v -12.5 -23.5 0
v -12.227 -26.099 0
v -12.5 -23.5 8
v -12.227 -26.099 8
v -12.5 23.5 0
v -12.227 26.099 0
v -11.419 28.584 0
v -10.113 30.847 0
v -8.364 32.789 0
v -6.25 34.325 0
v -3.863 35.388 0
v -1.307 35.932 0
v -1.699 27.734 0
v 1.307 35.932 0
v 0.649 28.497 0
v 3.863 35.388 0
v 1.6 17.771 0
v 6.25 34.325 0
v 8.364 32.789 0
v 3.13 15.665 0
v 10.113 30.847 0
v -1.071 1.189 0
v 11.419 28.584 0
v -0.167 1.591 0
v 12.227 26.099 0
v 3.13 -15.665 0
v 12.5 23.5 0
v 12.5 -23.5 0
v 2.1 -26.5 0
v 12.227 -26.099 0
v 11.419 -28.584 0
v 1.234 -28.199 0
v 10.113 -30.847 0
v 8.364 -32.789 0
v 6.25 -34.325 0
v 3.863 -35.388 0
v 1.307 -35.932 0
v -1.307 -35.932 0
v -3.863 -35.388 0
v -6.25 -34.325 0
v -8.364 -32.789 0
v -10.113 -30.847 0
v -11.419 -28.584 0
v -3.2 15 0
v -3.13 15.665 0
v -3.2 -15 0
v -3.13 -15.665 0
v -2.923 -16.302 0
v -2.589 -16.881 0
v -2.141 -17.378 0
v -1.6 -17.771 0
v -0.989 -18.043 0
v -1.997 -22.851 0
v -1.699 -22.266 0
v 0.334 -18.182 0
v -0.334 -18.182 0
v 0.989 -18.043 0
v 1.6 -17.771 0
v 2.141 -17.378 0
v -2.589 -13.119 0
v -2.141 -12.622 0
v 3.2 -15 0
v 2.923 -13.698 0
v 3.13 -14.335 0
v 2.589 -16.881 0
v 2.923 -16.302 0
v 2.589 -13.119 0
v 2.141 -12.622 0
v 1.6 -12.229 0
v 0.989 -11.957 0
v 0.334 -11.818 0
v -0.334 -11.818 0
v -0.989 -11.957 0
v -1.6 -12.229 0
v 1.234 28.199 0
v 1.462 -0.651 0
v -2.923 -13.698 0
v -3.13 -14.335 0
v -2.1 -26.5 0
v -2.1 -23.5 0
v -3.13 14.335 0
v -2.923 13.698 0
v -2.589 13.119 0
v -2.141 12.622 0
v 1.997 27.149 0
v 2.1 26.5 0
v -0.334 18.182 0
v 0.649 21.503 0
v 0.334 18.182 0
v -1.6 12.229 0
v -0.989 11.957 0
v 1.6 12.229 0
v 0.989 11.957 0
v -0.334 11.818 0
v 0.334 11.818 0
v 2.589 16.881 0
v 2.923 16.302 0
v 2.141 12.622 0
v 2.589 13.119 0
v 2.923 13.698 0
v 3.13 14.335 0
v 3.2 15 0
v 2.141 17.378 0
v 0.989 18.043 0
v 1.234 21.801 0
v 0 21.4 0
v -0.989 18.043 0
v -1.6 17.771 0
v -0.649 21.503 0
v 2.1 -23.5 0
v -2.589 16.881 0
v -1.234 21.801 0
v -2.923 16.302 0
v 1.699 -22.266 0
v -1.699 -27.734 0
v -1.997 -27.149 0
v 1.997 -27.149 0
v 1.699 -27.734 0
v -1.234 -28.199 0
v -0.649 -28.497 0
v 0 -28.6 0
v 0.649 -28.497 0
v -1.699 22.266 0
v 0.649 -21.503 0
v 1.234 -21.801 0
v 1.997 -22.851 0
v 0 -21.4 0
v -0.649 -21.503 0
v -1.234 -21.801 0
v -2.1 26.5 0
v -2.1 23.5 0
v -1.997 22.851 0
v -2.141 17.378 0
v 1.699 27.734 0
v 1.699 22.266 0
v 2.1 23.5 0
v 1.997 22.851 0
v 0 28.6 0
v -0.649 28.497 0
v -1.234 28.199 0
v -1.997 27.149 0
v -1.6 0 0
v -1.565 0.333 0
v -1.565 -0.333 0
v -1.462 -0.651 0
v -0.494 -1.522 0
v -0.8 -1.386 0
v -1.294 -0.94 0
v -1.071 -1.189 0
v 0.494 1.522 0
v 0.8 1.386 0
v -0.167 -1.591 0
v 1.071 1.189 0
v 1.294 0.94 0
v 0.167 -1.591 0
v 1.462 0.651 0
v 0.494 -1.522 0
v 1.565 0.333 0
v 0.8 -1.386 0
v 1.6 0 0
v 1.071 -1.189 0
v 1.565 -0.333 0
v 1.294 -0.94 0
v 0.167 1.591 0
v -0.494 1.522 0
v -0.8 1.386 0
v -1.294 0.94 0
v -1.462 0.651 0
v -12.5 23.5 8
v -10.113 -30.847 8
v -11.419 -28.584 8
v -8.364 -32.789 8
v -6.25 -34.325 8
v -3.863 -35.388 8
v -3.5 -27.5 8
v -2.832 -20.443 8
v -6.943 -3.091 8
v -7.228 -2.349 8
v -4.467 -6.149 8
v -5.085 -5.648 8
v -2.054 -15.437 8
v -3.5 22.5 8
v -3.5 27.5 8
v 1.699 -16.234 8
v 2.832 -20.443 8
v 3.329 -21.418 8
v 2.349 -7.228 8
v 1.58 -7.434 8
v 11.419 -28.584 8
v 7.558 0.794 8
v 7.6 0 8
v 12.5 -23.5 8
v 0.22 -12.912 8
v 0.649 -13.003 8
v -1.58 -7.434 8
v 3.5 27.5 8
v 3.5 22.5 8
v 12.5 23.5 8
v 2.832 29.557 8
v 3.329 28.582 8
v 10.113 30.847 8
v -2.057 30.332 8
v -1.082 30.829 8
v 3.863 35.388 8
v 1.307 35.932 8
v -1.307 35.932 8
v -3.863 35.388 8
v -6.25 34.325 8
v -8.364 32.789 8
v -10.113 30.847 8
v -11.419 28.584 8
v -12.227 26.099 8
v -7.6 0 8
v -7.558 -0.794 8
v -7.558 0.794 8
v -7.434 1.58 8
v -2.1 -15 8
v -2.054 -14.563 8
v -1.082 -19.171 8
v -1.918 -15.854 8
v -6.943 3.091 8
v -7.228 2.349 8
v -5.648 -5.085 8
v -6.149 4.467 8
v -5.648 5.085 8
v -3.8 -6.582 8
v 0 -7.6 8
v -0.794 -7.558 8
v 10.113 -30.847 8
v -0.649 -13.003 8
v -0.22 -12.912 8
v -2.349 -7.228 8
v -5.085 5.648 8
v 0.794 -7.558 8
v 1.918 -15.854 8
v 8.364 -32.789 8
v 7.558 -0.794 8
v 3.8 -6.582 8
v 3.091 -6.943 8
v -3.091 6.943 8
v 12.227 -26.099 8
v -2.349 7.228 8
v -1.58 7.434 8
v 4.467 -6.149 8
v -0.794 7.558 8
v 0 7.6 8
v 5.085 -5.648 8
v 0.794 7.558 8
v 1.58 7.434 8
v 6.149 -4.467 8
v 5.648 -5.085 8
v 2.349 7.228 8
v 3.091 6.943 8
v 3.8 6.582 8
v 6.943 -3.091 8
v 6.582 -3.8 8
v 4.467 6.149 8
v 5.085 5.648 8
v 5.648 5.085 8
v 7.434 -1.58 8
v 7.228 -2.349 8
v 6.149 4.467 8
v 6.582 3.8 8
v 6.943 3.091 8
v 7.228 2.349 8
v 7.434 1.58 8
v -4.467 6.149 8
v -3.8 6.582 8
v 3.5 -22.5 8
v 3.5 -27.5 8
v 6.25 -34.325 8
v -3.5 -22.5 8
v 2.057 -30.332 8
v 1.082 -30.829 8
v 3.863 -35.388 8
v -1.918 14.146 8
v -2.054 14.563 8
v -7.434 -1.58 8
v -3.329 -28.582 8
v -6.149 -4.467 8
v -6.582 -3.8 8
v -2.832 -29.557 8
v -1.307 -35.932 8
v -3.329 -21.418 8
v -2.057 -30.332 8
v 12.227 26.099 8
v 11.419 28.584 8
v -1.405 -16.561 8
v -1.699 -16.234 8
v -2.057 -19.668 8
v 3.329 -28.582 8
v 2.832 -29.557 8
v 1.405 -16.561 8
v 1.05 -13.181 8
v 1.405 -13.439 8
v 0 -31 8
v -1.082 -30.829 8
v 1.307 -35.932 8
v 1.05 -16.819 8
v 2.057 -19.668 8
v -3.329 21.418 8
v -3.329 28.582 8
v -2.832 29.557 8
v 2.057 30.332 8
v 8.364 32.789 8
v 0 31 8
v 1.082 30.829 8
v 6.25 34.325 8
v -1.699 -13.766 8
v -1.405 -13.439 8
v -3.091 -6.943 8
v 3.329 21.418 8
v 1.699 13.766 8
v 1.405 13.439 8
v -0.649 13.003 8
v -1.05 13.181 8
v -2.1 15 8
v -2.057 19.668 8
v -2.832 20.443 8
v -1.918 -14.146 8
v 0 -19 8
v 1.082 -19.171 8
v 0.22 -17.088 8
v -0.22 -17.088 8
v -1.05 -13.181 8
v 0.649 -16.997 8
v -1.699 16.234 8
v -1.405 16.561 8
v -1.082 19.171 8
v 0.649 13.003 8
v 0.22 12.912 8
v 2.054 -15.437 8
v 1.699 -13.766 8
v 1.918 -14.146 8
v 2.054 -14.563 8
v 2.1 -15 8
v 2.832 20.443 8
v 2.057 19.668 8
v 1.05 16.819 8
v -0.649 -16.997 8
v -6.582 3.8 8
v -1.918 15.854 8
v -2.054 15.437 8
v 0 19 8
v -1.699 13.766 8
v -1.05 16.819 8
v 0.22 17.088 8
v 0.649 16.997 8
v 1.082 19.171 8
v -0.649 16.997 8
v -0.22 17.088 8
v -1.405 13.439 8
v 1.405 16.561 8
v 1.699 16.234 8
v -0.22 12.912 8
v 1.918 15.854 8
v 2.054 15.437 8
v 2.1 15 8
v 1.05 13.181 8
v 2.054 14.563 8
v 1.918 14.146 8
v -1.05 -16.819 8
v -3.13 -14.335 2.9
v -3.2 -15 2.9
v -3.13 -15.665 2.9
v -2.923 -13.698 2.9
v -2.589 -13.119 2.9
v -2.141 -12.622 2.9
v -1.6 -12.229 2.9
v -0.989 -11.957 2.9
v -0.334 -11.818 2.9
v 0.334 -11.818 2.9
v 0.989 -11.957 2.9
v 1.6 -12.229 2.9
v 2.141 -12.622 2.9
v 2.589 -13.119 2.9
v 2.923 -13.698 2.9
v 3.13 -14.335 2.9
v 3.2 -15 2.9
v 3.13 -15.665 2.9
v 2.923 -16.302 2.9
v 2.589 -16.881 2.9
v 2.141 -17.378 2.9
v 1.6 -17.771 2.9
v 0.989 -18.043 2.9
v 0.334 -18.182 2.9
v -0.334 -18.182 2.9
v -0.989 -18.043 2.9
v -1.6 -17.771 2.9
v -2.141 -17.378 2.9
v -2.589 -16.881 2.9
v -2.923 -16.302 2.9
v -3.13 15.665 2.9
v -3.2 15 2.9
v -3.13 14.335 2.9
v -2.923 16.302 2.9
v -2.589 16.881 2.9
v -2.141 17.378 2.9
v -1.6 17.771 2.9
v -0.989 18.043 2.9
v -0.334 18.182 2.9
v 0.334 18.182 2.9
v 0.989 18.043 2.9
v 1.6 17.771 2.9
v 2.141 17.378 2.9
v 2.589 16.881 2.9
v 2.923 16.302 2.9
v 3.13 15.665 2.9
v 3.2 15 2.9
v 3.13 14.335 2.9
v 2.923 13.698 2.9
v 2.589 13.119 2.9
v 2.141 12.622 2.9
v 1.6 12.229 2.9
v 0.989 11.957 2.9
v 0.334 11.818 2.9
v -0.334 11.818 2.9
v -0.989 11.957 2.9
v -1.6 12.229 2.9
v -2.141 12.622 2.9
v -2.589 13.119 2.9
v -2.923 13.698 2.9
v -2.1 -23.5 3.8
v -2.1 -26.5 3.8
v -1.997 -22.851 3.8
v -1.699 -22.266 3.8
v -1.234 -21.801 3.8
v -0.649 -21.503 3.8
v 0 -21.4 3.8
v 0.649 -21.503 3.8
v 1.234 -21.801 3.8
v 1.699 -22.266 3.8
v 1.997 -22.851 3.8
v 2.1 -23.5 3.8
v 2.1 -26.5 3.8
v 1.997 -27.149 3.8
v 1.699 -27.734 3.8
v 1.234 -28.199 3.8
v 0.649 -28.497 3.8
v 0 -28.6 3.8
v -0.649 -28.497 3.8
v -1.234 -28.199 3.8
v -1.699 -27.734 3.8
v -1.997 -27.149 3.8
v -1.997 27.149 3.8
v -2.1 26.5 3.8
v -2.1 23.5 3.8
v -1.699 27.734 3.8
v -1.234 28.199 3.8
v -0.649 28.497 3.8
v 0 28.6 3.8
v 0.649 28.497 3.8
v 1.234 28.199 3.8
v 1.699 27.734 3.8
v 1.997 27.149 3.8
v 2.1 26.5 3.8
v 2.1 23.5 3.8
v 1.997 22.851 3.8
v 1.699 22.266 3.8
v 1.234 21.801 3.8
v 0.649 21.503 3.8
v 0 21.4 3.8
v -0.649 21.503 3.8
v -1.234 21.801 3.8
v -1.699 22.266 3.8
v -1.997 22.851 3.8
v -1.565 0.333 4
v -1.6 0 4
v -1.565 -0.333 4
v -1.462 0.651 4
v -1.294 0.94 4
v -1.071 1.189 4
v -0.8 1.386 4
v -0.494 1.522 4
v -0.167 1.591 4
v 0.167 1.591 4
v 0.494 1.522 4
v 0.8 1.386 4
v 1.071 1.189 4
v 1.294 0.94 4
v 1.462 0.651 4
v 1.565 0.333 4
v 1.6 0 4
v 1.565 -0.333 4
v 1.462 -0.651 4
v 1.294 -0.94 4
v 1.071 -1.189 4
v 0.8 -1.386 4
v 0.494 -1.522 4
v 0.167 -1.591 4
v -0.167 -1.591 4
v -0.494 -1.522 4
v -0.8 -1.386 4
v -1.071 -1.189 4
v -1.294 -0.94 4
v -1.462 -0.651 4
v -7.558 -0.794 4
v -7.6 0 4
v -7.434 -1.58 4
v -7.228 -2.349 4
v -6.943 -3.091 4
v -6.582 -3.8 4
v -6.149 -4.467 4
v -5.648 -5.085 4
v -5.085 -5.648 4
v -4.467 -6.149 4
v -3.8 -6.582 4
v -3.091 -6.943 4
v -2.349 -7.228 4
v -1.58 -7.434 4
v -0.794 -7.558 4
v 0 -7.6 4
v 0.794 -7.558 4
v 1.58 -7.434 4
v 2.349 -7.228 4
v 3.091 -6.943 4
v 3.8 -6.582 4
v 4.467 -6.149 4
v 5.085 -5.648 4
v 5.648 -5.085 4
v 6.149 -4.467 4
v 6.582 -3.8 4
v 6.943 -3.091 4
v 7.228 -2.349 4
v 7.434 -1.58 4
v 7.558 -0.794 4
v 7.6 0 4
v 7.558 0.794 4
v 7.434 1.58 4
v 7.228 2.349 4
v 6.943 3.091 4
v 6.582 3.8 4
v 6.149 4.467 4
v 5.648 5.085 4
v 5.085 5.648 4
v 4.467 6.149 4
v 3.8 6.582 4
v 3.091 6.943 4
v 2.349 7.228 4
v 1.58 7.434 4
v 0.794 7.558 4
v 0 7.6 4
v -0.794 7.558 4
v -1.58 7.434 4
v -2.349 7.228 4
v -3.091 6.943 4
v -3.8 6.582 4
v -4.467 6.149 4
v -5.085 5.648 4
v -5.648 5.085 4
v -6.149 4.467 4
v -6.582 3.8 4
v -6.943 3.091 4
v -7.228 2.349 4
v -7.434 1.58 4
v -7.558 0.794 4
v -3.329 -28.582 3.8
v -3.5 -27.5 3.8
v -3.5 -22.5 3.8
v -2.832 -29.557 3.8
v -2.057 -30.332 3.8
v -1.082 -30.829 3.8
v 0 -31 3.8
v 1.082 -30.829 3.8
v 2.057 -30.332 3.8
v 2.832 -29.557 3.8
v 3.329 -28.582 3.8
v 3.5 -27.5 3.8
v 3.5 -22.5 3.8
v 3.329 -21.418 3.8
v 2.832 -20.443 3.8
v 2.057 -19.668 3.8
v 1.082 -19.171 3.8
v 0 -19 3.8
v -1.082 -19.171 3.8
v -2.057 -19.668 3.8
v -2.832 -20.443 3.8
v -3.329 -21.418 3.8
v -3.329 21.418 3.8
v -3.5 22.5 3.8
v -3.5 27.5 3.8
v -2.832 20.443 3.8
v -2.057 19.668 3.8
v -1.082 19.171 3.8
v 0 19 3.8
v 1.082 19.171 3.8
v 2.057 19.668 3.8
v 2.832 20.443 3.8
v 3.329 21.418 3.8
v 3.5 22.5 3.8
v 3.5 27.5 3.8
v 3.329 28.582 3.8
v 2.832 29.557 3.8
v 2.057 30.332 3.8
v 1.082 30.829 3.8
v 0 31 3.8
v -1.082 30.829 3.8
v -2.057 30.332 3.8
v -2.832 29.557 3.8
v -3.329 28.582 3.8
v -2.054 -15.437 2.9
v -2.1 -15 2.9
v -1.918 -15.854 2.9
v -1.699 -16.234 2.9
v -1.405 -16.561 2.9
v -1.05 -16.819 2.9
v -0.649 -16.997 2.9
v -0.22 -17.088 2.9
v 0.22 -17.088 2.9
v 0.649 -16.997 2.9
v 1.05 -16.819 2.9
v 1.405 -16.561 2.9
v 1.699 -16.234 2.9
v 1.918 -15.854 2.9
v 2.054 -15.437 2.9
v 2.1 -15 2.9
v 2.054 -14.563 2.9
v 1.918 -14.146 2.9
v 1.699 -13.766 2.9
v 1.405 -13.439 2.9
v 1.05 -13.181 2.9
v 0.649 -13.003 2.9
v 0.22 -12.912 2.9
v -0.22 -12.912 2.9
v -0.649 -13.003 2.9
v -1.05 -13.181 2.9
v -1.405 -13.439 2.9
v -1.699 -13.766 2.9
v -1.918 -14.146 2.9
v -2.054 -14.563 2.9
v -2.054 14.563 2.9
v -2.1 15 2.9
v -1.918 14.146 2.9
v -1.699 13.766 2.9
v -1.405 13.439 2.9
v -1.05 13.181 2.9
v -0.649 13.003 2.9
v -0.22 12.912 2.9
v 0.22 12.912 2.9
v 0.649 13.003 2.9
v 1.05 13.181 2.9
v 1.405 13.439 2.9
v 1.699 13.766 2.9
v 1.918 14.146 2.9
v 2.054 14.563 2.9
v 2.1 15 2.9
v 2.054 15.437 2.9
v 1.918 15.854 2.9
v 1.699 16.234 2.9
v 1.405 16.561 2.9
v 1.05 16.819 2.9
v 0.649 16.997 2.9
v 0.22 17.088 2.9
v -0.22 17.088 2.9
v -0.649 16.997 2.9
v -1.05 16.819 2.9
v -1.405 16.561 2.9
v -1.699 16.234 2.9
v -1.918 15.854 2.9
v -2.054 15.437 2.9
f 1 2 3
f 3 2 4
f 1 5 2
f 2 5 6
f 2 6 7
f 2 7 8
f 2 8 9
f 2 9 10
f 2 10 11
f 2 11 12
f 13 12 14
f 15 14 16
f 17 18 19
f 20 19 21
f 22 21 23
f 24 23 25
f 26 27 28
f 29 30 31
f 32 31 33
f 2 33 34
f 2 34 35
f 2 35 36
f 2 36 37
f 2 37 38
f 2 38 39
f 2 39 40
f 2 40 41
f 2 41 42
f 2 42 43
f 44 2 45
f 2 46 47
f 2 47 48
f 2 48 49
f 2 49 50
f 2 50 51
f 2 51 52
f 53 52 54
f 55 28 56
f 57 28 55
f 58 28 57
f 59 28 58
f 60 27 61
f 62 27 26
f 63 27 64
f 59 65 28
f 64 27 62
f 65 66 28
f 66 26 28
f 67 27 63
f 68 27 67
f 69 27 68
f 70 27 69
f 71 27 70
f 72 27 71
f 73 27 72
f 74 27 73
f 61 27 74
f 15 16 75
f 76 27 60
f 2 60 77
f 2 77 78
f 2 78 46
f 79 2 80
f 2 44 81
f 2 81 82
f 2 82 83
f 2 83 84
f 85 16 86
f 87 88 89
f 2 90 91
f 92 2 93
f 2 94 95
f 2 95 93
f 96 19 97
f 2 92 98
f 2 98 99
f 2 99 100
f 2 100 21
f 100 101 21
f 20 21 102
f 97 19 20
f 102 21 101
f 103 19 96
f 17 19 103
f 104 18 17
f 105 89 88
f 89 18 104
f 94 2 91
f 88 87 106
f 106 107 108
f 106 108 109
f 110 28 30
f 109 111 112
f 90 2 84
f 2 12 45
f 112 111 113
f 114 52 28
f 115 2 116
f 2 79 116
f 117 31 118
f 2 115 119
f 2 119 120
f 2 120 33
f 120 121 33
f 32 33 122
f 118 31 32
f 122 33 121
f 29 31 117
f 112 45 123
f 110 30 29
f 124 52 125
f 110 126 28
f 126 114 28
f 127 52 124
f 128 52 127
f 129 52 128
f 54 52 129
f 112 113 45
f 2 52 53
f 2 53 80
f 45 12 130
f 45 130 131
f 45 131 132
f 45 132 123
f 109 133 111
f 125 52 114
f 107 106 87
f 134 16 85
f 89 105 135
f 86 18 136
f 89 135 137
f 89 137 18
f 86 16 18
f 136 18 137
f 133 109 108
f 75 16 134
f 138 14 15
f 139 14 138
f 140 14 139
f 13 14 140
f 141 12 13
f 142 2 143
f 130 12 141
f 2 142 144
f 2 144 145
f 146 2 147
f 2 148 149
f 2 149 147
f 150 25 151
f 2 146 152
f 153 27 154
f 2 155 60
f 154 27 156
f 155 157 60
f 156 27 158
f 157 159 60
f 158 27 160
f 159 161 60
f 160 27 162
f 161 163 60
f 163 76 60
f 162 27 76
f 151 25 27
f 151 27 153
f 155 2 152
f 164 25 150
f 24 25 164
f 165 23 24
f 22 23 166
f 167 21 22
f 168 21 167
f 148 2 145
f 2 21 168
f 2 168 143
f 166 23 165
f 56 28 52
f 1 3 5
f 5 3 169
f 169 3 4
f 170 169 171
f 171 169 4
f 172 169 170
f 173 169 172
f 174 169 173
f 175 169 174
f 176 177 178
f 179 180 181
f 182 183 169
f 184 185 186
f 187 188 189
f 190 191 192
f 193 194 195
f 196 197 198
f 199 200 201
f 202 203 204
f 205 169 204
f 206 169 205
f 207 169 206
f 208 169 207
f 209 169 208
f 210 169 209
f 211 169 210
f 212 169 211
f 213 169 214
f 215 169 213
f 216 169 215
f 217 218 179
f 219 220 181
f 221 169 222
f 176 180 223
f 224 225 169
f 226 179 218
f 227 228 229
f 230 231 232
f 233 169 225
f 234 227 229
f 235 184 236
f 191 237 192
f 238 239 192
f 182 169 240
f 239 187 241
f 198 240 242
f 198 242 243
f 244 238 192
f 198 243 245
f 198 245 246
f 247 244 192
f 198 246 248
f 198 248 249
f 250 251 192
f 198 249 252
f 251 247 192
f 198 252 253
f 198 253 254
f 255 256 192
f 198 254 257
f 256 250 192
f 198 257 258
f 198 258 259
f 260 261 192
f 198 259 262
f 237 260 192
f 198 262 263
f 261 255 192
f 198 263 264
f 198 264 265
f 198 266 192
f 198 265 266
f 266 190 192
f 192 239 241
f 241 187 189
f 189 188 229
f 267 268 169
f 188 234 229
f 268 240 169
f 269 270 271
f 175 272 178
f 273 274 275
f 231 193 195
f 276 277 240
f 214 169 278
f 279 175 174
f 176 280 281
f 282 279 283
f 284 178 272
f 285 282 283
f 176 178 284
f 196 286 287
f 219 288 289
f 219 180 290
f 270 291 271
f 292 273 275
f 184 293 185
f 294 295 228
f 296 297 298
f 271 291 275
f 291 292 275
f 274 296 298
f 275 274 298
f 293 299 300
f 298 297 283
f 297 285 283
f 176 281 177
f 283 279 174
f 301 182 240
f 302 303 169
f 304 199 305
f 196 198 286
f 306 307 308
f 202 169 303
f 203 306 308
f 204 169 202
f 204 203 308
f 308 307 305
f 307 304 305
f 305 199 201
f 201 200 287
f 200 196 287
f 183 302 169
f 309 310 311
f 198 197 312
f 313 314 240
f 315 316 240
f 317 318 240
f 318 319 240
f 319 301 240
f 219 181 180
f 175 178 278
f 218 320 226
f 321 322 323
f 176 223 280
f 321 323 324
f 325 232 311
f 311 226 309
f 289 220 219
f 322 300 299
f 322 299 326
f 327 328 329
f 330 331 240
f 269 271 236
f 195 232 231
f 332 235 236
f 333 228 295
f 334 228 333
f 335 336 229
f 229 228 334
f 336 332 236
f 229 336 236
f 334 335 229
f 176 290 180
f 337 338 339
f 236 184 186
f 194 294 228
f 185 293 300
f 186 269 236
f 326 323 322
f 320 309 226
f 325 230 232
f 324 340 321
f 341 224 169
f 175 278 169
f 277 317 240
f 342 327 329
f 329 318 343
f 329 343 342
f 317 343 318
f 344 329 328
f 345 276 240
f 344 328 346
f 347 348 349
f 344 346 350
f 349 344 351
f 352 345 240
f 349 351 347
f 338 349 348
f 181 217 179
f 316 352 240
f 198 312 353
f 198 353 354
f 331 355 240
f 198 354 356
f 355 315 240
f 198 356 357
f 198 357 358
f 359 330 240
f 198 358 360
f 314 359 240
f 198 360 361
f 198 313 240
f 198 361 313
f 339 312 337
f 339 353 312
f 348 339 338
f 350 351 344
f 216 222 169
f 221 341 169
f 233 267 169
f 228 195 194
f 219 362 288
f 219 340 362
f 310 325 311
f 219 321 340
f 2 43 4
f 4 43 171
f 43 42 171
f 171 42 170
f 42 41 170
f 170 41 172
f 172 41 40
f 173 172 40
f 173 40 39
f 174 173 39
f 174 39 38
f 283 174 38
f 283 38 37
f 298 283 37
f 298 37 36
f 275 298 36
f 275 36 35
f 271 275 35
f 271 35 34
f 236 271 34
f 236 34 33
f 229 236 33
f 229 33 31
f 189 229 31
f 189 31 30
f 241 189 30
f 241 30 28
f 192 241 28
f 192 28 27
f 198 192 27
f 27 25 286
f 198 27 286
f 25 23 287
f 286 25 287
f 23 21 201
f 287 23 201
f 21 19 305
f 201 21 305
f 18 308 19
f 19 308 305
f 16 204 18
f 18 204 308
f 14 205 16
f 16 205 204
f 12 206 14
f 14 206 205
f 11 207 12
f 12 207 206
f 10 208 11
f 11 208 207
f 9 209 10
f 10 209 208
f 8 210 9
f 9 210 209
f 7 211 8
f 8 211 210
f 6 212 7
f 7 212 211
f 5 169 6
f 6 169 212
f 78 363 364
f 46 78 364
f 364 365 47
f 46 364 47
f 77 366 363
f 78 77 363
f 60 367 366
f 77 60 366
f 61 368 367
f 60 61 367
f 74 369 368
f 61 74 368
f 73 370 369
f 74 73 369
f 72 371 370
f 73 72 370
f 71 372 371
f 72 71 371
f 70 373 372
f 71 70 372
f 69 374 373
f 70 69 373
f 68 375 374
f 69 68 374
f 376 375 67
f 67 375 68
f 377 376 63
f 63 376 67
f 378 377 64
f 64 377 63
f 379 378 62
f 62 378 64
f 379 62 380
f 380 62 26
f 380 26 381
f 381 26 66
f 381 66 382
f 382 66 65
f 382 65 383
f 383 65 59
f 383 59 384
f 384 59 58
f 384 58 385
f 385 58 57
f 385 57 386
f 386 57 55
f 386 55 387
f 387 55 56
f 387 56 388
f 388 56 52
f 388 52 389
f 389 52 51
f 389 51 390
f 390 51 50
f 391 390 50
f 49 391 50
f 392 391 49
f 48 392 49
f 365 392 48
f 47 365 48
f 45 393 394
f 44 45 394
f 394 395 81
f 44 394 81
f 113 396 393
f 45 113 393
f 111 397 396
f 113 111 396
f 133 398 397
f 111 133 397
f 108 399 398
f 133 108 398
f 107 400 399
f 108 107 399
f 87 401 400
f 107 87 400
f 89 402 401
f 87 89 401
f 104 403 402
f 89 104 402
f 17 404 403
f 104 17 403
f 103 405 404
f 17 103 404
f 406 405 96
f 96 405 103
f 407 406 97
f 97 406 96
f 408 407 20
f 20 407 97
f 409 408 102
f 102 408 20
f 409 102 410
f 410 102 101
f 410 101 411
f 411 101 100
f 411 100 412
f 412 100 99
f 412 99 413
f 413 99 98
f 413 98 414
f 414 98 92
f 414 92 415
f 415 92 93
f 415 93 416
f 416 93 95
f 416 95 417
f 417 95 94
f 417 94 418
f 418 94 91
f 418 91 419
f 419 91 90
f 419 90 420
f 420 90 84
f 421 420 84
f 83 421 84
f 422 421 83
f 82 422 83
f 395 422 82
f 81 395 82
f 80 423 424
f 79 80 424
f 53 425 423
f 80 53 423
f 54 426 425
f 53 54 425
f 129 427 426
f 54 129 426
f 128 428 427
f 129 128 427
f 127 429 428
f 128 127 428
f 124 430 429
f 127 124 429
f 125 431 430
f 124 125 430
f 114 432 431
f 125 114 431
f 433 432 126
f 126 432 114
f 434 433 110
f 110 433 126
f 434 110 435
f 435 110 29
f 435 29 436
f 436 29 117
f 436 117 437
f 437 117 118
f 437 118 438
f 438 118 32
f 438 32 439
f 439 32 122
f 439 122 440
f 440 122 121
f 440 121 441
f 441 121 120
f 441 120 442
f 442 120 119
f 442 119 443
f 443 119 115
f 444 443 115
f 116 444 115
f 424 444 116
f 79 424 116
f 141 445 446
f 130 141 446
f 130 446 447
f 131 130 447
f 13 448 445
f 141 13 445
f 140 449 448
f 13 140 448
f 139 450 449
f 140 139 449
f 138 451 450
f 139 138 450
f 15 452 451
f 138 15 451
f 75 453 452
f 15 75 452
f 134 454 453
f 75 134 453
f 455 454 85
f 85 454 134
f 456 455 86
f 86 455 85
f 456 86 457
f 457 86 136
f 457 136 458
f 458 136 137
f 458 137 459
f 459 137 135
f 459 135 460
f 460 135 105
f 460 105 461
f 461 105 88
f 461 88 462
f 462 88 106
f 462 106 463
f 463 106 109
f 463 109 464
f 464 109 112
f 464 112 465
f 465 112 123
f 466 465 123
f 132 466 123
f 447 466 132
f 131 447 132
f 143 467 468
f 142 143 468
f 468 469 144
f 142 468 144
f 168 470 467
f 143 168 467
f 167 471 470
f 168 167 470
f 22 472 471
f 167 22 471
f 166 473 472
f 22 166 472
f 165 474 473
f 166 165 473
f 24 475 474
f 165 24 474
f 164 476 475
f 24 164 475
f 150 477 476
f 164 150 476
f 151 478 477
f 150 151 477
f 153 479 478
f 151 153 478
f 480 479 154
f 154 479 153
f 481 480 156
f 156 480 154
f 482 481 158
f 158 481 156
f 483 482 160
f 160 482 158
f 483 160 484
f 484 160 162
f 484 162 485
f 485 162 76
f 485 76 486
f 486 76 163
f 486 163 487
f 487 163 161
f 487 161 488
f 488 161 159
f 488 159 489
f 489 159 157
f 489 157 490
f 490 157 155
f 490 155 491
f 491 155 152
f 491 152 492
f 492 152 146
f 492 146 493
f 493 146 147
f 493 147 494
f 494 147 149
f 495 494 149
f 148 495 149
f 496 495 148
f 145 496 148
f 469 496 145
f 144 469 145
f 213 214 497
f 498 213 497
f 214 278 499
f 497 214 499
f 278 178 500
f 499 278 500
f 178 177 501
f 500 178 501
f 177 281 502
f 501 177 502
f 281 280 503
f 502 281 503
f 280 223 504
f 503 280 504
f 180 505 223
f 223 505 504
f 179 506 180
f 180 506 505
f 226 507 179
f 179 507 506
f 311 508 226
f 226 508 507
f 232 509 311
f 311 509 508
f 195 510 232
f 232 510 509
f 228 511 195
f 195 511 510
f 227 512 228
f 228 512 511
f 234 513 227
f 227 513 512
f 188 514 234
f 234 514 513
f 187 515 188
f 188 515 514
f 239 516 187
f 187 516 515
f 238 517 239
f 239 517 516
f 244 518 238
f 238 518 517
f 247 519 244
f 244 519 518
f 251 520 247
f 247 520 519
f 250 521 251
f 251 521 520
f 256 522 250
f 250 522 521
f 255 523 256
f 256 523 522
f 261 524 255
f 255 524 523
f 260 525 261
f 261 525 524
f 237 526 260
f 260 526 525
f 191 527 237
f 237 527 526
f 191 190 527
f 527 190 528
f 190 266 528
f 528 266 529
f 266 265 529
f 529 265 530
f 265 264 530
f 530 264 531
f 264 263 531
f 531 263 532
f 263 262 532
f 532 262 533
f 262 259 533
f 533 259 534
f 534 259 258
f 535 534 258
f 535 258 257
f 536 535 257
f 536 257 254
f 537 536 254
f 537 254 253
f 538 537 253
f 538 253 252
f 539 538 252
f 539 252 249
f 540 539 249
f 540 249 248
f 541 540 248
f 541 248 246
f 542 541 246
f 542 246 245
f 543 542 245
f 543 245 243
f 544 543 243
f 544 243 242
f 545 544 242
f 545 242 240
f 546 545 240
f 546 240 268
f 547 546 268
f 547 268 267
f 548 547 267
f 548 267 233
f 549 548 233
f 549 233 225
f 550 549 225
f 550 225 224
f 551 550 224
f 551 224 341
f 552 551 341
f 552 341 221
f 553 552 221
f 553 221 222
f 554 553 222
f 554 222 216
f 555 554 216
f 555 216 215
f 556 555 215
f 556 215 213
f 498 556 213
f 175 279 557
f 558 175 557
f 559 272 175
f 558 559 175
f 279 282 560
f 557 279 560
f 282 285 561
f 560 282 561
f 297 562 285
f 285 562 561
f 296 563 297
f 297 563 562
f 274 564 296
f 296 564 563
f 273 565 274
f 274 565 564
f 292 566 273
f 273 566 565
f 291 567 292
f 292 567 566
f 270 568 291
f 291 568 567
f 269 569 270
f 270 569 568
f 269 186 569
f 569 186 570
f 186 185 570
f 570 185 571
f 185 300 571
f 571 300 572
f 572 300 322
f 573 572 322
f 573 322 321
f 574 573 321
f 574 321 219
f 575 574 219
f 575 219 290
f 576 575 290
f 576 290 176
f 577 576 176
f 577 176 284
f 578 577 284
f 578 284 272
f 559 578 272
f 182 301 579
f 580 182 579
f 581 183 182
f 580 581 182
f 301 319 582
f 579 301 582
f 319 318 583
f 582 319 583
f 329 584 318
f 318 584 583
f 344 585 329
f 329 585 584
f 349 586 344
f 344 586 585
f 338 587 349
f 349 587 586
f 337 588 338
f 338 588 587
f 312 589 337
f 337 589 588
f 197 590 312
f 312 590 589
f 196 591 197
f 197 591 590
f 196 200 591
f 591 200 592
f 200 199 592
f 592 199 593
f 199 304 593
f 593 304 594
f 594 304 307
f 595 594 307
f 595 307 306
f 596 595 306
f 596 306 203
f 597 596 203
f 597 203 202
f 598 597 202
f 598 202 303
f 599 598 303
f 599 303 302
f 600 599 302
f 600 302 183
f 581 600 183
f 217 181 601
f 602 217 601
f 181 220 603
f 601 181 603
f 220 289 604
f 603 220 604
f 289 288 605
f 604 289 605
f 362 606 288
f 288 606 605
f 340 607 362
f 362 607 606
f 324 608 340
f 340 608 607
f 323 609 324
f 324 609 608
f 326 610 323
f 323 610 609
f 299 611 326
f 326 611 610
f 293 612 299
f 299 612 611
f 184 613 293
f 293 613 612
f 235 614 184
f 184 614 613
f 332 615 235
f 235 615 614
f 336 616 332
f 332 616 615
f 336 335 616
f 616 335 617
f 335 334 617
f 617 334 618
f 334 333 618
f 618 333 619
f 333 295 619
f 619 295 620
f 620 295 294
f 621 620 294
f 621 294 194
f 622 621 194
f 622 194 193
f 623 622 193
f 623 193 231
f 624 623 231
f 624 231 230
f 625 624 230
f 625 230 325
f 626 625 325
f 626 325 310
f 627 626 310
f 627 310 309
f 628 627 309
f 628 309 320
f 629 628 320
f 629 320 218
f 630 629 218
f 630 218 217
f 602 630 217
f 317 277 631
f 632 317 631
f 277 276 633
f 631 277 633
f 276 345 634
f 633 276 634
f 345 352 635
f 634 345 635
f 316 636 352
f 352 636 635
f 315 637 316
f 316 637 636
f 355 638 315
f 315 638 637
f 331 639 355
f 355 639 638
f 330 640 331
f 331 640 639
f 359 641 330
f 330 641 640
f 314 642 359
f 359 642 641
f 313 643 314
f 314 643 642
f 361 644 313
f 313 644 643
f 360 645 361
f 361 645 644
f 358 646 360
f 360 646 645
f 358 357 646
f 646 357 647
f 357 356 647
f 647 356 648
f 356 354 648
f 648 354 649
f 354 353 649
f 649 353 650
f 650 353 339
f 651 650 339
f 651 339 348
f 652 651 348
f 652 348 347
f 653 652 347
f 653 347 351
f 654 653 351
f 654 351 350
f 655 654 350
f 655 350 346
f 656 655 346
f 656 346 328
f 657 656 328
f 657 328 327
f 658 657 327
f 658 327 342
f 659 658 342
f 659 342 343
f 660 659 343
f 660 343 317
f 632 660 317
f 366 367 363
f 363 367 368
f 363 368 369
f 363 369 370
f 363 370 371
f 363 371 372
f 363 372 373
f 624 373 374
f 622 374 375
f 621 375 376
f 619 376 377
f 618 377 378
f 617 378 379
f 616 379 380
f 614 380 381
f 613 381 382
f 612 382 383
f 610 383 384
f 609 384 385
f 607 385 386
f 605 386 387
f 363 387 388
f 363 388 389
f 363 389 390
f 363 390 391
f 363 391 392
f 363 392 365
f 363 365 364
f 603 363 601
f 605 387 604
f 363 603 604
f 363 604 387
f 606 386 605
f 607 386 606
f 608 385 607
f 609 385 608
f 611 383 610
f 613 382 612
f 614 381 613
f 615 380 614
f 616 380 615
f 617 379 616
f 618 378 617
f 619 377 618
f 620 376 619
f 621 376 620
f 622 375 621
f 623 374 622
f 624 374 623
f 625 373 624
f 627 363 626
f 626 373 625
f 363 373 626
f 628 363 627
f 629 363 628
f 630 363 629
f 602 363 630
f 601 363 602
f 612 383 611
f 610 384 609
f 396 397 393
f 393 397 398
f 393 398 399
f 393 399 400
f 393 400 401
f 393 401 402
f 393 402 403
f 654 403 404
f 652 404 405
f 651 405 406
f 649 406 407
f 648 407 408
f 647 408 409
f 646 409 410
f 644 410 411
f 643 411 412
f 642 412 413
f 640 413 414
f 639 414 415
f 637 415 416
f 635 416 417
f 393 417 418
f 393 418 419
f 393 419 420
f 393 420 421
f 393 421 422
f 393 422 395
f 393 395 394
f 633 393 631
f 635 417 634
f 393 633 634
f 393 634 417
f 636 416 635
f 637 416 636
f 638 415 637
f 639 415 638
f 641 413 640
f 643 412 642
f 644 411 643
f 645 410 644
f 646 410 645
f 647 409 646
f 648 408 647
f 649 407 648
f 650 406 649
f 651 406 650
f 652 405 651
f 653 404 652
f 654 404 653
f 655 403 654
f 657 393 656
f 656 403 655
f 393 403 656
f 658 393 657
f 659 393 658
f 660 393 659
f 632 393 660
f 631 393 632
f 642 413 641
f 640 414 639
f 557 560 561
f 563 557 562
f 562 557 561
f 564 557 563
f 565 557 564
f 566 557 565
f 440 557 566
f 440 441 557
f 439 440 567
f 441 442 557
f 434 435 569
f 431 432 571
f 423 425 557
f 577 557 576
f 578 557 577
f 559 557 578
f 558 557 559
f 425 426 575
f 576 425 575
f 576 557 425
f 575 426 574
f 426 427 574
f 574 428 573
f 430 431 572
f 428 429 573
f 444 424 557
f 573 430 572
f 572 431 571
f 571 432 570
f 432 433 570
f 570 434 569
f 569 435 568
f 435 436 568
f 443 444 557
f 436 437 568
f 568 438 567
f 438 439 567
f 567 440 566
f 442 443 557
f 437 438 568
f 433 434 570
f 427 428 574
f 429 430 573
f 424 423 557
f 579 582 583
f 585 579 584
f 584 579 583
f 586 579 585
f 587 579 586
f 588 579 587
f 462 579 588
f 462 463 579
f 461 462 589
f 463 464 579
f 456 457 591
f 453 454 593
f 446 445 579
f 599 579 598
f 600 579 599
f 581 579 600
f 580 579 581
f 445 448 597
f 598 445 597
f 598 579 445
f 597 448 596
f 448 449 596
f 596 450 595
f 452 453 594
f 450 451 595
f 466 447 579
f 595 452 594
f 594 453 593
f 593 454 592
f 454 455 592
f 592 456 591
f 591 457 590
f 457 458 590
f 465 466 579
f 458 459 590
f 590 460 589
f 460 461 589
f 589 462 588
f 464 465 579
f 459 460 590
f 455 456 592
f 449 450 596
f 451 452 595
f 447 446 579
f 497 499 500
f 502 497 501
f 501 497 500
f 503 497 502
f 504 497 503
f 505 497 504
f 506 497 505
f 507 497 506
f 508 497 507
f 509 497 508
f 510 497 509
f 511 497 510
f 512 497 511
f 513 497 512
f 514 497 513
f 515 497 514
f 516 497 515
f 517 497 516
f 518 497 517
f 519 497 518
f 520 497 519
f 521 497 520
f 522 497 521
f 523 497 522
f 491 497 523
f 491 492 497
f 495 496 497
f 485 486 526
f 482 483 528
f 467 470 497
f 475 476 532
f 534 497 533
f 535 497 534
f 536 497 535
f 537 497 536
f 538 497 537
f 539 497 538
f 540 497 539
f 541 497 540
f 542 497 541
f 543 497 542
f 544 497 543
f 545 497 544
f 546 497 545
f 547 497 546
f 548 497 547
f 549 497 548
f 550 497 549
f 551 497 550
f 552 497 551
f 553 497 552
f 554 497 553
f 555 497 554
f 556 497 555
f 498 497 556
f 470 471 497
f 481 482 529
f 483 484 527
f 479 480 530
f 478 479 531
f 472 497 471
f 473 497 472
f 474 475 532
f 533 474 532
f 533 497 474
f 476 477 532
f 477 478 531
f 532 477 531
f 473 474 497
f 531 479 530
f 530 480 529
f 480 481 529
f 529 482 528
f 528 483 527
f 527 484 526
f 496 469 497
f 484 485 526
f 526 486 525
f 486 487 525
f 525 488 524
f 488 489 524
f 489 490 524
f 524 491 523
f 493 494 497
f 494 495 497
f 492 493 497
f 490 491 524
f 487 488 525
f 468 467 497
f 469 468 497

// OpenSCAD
width = 25;
length = 72;
height = 8;

module adjustable_bolt_slot(){
	// suits M4 bolts (M4x50 for the makerspace .5mm extruder)
	slot_length = 5;
	slot_width = 7;

	translate([0,0,3.9]){
		linear_extrude(height=height){
			hull(){
				translate([0, -slot_length/2.0, 0])
					circle(r=slot_width/2, $fn=20);
				translate([0, slot_length/2.0, 0])
					circle(r=slot_width/2, $fn=20);			
			}
		}
	}

	linear_extrude(height=4){
		hull(){
			translate([0, -slot_length/2.0 + 1, 0])
				circle(r=2.1, $fn=20);
			translate([0, slot_length/2.0 - 1, 0])
				circle(r=2.1, $fn=20);			
		}
	}

}

module extruder_mount(){
	difference(){
		linear_extrude(height=height){
			hull(){
				translate([0, -length/2.0 + width/2, 0])
					circle(r=width/2);
				translate([0, length/2.0 - width/2, 0])
					circle(r=width/2);			
			}
		}
		// spacing between extruder mount bolts is 50mm
		translate([0, -25, -0.1])
			adjustable_bolt_slot();
		translate([0, 25, -0.1])
			adjustable_bolt_slot();

		// spacing between hot-end bolts is 30mm
		translate([0, 15, -0.1])
			cylinder(r=2.1, h=height+0.2, $fn=30);
		translate([0, -15, -0.1])
			cylinder(r=2.1, h=height+0.2, $fn=30);

		// space for M3 bolt head on top (part is upside down in scad)
		translate([0, 15, -0.1])
			cylinder(r=3.2, h=3, $fn=30);
		translate([0, -15, -0.1])
			cylinder(r=3.2, h=3, $fn=30);

		// hole for the hot-end PTFE cylinder (15mm dia.)
		translate([0, 0, 4])
			cylinder(r=7.6, h=5.1, $fn=60);

		// hole for 3mm filament
		translate([0, 0, -0.1])
			cylinder(r=1.6, h=height+0.2, $fn=30);

	}
}


extruder_mount();

//translate([50,0,0])
//	adjustable_bolt_slot();
